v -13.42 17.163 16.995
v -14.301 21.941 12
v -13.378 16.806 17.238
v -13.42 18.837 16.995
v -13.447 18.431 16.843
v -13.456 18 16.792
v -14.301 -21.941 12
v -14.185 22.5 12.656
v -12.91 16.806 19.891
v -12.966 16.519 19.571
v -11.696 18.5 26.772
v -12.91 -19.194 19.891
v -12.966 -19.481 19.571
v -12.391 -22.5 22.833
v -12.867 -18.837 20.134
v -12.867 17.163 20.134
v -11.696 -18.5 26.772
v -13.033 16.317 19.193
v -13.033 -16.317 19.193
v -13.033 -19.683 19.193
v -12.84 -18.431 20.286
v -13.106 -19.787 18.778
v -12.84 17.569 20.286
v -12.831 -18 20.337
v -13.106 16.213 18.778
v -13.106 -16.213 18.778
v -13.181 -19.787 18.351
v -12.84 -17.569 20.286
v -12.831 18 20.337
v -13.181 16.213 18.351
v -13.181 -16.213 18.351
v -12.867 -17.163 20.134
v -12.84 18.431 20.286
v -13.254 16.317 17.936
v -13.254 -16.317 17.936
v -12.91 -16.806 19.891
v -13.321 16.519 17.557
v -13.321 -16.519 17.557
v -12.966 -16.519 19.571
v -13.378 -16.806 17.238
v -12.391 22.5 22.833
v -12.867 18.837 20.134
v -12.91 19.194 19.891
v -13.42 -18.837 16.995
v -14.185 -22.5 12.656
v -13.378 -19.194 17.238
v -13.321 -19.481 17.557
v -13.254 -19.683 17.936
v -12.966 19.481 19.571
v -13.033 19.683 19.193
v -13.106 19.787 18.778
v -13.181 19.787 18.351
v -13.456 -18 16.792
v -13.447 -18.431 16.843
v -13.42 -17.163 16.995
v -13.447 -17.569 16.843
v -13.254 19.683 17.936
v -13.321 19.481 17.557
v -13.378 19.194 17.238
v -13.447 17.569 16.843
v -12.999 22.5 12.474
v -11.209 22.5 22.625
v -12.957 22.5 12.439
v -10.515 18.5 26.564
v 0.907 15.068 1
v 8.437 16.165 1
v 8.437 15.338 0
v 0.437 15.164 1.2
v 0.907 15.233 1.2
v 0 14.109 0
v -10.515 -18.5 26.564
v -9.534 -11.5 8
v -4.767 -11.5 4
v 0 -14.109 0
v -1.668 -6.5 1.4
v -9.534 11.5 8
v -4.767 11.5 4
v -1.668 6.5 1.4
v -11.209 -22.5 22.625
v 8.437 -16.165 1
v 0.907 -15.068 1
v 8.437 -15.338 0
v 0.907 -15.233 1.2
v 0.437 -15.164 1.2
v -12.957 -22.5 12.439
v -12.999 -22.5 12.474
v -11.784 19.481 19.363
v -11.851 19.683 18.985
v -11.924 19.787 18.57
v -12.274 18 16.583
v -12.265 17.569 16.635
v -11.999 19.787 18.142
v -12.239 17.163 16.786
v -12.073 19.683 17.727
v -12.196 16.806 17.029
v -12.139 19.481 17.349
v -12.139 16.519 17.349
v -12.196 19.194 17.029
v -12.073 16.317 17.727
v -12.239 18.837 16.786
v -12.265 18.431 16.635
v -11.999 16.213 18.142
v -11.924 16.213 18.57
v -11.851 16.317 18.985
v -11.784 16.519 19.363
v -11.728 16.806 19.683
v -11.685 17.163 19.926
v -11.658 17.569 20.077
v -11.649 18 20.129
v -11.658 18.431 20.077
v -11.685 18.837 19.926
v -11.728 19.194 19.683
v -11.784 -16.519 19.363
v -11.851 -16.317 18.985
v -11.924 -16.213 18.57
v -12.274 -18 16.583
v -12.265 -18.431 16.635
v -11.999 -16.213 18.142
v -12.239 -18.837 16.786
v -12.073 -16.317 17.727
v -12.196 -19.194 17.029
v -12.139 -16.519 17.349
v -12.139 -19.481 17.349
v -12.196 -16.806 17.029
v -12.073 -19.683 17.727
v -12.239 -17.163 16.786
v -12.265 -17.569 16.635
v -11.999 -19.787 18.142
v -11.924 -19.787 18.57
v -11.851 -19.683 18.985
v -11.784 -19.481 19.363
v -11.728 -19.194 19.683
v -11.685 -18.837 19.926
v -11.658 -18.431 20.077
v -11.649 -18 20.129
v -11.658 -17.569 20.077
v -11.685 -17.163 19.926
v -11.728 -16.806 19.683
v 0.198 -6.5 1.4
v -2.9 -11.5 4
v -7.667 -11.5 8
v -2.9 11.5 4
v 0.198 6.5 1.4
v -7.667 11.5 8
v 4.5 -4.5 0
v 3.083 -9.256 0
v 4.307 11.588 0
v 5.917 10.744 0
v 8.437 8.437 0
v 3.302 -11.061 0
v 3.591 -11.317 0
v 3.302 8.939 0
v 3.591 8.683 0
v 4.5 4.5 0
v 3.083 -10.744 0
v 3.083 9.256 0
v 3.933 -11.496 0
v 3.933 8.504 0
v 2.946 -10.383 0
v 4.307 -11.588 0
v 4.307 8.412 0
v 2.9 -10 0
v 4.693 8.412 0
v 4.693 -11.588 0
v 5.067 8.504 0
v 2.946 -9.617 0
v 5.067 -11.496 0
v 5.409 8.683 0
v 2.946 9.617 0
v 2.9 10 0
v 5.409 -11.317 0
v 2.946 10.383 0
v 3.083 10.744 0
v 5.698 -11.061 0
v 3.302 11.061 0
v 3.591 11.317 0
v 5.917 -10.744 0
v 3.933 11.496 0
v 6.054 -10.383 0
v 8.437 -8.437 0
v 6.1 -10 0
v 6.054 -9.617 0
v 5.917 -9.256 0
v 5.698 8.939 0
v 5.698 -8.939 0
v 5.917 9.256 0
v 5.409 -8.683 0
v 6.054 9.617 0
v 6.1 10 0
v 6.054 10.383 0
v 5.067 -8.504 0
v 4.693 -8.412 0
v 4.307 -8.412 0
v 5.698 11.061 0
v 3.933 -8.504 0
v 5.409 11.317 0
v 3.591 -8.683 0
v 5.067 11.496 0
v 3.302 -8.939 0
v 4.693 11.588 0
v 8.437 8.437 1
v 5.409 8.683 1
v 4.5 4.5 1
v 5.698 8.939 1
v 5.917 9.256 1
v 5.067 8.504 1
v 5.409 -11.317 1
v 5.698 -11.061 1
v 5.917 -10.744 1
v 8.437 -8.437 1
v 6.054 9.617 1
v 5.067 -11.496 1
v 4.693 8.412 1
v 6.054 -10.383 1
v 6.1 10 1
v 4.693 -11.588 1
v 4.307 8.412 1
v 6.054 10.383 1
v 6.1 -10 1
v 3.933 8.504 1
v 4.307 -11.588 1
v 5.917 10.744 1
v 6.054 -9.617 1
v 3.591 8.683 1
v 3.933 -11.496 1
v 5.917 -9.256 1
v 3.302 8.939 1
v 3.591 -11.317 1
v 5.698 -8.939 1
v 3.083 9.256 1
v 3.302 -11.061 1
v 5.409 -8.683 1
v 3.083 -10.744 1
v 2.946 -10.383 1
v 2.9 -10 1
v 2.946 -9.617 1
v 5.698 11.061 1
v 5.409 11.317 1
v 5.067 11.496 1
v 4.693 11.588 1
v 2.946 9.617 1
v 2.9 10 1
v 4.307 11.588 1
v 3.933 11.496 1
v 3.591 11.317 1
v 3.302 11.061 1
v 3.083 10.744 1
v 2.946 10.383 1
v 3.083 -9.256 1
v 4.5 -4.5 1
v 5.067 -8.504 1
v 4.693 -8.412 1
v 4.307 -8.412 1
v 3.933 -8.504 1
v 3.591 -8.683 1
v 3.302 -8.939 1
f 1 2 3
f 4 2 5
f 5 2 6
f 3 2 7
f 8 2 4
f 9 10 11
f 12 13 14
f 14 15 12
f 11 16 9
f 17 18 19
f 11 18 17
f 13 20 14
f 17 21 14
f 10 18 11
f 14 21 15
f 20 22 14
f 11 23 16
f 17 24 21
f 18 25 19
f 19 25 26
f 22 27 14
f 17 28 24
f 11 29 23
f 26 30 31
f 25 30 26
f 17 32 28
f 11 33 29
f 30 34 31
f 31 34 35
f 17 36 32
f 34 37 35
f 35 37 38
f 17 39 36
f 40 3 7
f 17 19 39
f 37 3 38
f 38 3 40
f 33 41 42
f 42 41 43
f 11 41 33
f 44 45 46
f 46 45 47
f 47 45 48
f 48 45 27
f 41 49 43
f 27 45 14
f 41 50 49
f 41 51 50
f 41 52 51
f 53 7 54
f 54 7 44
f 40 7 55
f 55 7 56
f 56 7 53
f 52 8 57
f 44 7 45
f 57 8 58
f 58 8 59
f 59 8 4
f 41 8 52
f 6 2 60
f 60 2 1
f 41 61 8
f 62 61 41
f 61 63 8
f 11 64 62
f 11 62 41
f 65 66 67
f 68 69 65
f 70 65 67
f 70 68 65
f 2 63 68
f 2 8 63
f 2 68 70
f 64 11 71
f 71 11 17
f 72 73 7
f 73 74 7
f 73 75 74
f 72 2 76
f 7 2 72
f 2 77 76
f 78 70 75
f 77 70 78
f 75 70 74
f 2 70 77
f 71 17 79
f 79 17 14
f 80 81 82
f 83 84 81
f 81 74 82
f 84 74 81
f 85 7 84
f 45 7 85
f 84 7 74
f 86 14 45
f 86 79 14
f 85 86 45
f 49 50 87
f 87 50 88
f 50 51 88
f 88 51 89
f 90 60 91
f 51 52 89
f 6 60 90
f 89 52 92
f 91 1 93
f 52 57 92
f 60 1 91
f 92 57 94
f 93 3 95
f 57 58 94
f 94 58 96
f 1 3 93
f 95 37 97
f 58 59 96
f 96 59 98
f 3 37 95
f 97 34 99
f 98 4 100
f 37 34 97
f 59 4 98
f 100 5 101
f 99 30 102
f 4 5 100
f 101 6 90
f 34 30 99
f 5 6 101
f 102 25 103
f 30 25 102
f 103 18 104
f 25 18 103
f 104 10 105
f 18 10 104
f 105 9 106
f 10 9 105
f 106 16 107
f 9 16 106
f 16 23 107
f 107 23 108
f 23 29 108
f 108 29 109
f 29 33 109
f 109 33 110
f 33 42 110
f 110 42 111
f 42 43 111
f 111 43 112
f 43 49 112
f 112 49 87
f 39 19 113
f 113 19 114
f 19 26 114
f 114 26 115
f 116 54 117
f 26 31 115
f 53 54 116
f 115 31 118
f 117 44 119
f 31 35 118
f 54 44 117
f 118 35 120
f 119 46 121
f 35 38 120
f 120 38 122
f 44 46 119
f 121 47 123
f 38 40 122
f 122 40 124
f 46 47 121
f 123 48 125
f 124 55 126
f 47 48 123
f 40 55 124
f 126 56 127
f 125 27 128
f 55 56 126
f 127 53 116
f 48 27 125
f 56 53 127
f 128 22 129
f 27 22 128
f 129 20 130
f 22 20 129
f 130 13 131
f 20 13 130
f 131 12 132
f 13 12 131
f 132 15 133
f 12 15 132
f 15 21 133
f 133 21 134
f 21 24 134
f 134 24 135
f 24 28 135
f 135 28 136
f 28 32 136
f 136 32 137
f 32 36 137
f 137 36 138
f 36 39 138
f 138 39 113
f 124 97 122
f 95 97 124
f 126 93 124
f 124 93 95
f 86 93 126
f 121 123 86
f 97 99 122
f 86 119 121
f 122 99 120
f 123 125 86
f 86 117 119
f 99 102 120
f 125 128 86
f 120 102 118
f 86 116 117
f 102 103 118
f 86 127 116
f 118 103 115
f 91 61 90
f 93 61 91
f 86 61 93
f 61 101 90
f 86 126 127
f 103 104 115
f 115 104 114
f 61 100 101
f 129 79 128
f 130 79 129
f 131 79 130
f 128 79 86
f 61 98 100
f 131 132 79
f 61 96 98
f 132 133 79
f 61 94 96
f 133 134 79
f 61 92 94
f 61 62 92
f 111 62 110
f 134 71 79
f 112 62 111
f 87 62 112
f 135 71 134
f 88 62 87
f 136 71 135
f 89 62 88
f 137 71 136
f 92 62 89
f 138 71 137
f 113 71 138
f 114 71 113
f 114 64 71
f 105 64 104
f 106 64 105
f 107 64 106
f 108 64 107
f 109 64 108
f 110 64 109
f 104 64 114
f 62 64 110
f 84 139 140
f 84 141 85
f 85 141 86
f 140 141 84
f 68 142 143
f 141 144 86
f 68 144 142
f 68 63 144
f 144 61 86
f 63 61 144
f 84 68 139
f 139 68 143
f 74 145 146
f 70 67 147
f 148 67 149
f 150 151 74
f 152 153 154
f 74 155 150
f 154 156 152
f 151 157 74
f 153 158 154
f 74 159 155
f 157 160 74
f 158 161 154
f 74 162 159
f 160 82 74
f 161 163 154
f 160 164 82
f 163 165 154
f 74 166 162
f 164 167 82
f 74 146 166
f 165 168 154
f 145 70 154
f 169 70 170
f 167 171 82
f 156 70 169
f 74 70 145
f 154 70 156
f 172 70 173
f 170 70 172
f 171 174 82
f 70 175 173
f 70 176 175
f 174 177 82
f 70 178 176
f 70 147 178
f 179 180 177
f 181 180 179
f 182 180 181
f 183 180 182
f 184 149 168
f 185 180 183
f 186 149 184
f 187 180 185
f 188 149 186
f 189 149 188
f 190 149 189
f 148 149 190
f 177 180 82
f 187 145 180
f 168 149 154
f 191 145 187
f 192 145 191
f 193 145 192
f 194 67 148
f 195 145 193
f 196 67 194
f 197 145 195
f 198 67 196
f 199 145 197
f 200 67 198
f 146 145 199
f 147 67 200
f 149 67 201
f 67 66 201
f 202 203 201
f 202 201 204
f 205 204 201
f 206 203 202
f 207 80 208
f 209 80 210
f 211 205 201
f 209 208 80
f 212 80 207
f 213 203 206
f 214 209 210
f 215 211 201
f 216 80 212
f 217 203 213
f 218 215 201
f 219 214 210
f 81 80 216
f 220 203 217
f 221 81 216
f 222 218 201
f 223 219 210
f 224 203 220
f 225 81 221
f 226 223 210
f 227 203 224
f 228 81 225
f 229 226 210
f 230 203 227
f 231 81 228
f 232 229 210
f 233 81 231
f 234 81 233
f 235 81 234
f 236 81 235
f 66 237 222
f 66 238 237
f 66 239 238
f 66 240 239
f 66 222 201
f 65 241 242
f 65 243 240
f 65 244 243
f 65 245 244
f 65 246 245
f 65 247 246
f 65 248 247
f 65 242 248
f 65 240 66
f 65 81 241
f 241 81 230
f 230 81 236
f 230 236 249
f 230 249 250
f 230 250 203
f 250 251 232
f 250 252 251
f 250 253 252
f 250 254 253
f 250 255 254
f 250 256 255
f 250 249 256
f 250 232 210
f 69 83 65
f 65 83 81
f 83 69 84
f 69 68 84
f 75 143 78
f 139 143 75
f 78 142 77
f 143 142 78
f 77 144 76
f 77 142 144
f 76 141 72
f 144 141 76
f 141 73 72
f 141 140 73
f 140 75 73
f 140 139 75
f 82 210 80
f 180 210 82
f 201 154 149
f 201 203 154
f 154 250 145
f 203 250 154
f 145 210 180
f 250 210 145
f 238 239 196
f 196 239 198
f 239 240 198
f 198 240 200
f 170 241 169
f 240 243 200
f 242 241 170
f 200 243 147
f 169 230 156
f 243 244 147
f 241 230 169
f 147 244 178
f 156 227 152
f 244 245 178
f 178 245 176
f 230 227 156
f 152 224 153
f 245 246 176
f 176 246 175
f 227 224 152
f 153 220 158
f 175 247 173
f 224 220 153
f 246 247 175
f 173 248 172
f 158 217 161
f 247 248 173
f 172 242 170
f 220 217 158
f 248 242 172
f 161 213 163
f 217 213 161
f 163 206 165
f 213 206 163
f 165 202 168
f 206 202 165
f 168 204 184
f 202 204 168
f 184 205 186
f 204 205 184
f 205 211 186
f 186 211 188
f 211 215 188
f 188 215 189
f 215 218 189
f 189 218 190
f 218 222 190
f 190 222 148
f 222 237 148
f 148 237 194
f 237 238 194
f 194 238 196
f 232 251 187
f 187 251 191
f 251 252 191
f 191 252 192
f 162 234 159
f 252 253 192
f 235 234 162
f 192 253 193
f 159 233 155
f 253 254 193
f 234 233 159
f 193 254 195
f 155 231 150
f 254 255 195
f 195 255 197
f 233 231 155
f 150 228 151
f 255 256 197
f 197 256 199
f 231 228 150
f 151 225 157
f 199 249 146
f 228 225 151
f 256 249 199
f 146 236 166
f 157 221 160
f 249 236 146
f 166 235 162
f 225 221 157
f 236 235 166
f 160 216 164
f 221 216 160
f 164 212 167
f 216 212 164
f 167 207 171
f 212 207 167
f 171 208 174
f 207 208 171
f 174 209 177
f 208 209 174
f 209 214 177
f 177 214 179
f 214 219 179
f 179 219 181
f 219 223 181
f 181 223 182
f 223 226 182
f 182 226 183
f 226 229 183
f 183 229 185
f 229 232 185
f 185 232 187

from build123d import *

# Parameters (mm, degrees)
PAD_DEPTH       = 22.5
POCKET_DEPTH    = 29
SKETCH002_R     = 1.6
POCKET001_DEPTH = 5
SKETCH003_R     = 1.8
POCKET002_DEPTH = 5
CHAMFER001_SIZE = 4
POCKET003_DEPTH = 7
SKETCH005_W     = 8
SKETCH005_H     = 36.404098
POCKET004_DEPTH = 0.2


with BuildPart() as part:
    # Sketch → Pad (new body, symmetric)
    with BuildSketch(Plane.XZ):
        Polygon((0, 0), (8.4367642811, 0), (8.4367642811, 1.2), (0.4367642811, 1.2), (-12.998966821, 12.4739170124), (-10.5145511425, 26.563738482), (-11.6963204461, 26.7721162952), (-14.3010431111, 12), align=None)
    extrude(amount=PAD_DEPTH, both=True)

    # Sketch001 (on Face7 of Pad) → Pocket (cut)
    with BuildSketch(Plane(origin=(-15.9219347561, 0, 2.8074666826), x_dir=(-0.1736481777, 0, -0.984807753), z_dir=(-0.984807753, 0, 0.1736481777))):
        Polygon((-10, -22.5), (0, -14.1090036882), (0, -23.5), (-10, -23.5), align=None)
        Polygon((-10, 22.5), (0, 14.1090036882), (0, 23.5), (-10, 23.5), align=None)
    extrude(amount=-POCKET_DEPTH, mode=Mode.SUBTRACT)

    # Sketch002 (on Face7 of Pocket) → Pocket001 (cut)
    with BuildSketch(Plane(origin=(0, 0, 1.2), x_dir=(-1, 0, 0), z_dir=(0, 0, 1))):
        with Locations((-4.5, 10)):
            Circle(SKETCH002_R)
        with Locations((-4.5, -10)):
            Circle(SKETCH002_R)
        Polygon((-9.5, -9.5), (-4.5, -4.5), (-4.5, 4.5), (-9.5, 9.5), align=None)
    extrude(amount=-POCKET001_DEPTH, mode=Mode.SUBTRACT)

    # Sketch003 (on Face13 of Pocket001) → Pocket002 (cut)
    with BuildSketch(Plane(origin=(-15.9219347561, 0, 2.8074666826), x_dir=(-0.1736481777, 0, -0.984807753), z_dir=(-0.984807753, 0, 0.1736481777))):
        with Locations((-16, 18)):
            Circle(SKETCH003_R)
        with Locations((-16, -18)):
            Circle(SKETCH003_R)
    extrude(amount=-POCKET002_DEPTH, mode=Mode.SUBTRACT)

    # Chamfer001
    chamfer001_edges = [part.edges().sort_by_distance(p)[0] for p in [
        (-11.105436, -22.5, 26.667927),
        (-11.105436, 22.5, 26.667927),
    ]]
    chamfer(chamfer001_edges, length=CHAMFER001_SIZE)

    # Sketch004 → Pocket003 (cut, symmetric)
    with BuildSketch(Plane(origin=(-5.5127970494, 0, 0), x_dir=(0, 0, 1), z_dir=(1, 0, 0))):
        Polygon((1.4, 6.5), (1.4, -6.5), (4, -11.5), (8, -11.5), (8, 11.5), (4, 11.5), align=None)
    extrude(amount=POCKET003_DEPTH, both=True, mode=Mode.SUBTRACT)

    # Sketch005 (on Face16 of Pocket003) → Pocket004 (cut)
    with BuildSketch(Plane(origin=(0, 0, 1.2), x_dir=(-1, 0, 0), z_dir=(0, 0, 1))):
        with Locations((-4.90745, 0)):
            Rectangle(SKETCH005_W, SKETCH005_H)
    extrude(amount=-POCKET004_DEPTH, mode=Mode.SUBTRACT)


solid = part.part
